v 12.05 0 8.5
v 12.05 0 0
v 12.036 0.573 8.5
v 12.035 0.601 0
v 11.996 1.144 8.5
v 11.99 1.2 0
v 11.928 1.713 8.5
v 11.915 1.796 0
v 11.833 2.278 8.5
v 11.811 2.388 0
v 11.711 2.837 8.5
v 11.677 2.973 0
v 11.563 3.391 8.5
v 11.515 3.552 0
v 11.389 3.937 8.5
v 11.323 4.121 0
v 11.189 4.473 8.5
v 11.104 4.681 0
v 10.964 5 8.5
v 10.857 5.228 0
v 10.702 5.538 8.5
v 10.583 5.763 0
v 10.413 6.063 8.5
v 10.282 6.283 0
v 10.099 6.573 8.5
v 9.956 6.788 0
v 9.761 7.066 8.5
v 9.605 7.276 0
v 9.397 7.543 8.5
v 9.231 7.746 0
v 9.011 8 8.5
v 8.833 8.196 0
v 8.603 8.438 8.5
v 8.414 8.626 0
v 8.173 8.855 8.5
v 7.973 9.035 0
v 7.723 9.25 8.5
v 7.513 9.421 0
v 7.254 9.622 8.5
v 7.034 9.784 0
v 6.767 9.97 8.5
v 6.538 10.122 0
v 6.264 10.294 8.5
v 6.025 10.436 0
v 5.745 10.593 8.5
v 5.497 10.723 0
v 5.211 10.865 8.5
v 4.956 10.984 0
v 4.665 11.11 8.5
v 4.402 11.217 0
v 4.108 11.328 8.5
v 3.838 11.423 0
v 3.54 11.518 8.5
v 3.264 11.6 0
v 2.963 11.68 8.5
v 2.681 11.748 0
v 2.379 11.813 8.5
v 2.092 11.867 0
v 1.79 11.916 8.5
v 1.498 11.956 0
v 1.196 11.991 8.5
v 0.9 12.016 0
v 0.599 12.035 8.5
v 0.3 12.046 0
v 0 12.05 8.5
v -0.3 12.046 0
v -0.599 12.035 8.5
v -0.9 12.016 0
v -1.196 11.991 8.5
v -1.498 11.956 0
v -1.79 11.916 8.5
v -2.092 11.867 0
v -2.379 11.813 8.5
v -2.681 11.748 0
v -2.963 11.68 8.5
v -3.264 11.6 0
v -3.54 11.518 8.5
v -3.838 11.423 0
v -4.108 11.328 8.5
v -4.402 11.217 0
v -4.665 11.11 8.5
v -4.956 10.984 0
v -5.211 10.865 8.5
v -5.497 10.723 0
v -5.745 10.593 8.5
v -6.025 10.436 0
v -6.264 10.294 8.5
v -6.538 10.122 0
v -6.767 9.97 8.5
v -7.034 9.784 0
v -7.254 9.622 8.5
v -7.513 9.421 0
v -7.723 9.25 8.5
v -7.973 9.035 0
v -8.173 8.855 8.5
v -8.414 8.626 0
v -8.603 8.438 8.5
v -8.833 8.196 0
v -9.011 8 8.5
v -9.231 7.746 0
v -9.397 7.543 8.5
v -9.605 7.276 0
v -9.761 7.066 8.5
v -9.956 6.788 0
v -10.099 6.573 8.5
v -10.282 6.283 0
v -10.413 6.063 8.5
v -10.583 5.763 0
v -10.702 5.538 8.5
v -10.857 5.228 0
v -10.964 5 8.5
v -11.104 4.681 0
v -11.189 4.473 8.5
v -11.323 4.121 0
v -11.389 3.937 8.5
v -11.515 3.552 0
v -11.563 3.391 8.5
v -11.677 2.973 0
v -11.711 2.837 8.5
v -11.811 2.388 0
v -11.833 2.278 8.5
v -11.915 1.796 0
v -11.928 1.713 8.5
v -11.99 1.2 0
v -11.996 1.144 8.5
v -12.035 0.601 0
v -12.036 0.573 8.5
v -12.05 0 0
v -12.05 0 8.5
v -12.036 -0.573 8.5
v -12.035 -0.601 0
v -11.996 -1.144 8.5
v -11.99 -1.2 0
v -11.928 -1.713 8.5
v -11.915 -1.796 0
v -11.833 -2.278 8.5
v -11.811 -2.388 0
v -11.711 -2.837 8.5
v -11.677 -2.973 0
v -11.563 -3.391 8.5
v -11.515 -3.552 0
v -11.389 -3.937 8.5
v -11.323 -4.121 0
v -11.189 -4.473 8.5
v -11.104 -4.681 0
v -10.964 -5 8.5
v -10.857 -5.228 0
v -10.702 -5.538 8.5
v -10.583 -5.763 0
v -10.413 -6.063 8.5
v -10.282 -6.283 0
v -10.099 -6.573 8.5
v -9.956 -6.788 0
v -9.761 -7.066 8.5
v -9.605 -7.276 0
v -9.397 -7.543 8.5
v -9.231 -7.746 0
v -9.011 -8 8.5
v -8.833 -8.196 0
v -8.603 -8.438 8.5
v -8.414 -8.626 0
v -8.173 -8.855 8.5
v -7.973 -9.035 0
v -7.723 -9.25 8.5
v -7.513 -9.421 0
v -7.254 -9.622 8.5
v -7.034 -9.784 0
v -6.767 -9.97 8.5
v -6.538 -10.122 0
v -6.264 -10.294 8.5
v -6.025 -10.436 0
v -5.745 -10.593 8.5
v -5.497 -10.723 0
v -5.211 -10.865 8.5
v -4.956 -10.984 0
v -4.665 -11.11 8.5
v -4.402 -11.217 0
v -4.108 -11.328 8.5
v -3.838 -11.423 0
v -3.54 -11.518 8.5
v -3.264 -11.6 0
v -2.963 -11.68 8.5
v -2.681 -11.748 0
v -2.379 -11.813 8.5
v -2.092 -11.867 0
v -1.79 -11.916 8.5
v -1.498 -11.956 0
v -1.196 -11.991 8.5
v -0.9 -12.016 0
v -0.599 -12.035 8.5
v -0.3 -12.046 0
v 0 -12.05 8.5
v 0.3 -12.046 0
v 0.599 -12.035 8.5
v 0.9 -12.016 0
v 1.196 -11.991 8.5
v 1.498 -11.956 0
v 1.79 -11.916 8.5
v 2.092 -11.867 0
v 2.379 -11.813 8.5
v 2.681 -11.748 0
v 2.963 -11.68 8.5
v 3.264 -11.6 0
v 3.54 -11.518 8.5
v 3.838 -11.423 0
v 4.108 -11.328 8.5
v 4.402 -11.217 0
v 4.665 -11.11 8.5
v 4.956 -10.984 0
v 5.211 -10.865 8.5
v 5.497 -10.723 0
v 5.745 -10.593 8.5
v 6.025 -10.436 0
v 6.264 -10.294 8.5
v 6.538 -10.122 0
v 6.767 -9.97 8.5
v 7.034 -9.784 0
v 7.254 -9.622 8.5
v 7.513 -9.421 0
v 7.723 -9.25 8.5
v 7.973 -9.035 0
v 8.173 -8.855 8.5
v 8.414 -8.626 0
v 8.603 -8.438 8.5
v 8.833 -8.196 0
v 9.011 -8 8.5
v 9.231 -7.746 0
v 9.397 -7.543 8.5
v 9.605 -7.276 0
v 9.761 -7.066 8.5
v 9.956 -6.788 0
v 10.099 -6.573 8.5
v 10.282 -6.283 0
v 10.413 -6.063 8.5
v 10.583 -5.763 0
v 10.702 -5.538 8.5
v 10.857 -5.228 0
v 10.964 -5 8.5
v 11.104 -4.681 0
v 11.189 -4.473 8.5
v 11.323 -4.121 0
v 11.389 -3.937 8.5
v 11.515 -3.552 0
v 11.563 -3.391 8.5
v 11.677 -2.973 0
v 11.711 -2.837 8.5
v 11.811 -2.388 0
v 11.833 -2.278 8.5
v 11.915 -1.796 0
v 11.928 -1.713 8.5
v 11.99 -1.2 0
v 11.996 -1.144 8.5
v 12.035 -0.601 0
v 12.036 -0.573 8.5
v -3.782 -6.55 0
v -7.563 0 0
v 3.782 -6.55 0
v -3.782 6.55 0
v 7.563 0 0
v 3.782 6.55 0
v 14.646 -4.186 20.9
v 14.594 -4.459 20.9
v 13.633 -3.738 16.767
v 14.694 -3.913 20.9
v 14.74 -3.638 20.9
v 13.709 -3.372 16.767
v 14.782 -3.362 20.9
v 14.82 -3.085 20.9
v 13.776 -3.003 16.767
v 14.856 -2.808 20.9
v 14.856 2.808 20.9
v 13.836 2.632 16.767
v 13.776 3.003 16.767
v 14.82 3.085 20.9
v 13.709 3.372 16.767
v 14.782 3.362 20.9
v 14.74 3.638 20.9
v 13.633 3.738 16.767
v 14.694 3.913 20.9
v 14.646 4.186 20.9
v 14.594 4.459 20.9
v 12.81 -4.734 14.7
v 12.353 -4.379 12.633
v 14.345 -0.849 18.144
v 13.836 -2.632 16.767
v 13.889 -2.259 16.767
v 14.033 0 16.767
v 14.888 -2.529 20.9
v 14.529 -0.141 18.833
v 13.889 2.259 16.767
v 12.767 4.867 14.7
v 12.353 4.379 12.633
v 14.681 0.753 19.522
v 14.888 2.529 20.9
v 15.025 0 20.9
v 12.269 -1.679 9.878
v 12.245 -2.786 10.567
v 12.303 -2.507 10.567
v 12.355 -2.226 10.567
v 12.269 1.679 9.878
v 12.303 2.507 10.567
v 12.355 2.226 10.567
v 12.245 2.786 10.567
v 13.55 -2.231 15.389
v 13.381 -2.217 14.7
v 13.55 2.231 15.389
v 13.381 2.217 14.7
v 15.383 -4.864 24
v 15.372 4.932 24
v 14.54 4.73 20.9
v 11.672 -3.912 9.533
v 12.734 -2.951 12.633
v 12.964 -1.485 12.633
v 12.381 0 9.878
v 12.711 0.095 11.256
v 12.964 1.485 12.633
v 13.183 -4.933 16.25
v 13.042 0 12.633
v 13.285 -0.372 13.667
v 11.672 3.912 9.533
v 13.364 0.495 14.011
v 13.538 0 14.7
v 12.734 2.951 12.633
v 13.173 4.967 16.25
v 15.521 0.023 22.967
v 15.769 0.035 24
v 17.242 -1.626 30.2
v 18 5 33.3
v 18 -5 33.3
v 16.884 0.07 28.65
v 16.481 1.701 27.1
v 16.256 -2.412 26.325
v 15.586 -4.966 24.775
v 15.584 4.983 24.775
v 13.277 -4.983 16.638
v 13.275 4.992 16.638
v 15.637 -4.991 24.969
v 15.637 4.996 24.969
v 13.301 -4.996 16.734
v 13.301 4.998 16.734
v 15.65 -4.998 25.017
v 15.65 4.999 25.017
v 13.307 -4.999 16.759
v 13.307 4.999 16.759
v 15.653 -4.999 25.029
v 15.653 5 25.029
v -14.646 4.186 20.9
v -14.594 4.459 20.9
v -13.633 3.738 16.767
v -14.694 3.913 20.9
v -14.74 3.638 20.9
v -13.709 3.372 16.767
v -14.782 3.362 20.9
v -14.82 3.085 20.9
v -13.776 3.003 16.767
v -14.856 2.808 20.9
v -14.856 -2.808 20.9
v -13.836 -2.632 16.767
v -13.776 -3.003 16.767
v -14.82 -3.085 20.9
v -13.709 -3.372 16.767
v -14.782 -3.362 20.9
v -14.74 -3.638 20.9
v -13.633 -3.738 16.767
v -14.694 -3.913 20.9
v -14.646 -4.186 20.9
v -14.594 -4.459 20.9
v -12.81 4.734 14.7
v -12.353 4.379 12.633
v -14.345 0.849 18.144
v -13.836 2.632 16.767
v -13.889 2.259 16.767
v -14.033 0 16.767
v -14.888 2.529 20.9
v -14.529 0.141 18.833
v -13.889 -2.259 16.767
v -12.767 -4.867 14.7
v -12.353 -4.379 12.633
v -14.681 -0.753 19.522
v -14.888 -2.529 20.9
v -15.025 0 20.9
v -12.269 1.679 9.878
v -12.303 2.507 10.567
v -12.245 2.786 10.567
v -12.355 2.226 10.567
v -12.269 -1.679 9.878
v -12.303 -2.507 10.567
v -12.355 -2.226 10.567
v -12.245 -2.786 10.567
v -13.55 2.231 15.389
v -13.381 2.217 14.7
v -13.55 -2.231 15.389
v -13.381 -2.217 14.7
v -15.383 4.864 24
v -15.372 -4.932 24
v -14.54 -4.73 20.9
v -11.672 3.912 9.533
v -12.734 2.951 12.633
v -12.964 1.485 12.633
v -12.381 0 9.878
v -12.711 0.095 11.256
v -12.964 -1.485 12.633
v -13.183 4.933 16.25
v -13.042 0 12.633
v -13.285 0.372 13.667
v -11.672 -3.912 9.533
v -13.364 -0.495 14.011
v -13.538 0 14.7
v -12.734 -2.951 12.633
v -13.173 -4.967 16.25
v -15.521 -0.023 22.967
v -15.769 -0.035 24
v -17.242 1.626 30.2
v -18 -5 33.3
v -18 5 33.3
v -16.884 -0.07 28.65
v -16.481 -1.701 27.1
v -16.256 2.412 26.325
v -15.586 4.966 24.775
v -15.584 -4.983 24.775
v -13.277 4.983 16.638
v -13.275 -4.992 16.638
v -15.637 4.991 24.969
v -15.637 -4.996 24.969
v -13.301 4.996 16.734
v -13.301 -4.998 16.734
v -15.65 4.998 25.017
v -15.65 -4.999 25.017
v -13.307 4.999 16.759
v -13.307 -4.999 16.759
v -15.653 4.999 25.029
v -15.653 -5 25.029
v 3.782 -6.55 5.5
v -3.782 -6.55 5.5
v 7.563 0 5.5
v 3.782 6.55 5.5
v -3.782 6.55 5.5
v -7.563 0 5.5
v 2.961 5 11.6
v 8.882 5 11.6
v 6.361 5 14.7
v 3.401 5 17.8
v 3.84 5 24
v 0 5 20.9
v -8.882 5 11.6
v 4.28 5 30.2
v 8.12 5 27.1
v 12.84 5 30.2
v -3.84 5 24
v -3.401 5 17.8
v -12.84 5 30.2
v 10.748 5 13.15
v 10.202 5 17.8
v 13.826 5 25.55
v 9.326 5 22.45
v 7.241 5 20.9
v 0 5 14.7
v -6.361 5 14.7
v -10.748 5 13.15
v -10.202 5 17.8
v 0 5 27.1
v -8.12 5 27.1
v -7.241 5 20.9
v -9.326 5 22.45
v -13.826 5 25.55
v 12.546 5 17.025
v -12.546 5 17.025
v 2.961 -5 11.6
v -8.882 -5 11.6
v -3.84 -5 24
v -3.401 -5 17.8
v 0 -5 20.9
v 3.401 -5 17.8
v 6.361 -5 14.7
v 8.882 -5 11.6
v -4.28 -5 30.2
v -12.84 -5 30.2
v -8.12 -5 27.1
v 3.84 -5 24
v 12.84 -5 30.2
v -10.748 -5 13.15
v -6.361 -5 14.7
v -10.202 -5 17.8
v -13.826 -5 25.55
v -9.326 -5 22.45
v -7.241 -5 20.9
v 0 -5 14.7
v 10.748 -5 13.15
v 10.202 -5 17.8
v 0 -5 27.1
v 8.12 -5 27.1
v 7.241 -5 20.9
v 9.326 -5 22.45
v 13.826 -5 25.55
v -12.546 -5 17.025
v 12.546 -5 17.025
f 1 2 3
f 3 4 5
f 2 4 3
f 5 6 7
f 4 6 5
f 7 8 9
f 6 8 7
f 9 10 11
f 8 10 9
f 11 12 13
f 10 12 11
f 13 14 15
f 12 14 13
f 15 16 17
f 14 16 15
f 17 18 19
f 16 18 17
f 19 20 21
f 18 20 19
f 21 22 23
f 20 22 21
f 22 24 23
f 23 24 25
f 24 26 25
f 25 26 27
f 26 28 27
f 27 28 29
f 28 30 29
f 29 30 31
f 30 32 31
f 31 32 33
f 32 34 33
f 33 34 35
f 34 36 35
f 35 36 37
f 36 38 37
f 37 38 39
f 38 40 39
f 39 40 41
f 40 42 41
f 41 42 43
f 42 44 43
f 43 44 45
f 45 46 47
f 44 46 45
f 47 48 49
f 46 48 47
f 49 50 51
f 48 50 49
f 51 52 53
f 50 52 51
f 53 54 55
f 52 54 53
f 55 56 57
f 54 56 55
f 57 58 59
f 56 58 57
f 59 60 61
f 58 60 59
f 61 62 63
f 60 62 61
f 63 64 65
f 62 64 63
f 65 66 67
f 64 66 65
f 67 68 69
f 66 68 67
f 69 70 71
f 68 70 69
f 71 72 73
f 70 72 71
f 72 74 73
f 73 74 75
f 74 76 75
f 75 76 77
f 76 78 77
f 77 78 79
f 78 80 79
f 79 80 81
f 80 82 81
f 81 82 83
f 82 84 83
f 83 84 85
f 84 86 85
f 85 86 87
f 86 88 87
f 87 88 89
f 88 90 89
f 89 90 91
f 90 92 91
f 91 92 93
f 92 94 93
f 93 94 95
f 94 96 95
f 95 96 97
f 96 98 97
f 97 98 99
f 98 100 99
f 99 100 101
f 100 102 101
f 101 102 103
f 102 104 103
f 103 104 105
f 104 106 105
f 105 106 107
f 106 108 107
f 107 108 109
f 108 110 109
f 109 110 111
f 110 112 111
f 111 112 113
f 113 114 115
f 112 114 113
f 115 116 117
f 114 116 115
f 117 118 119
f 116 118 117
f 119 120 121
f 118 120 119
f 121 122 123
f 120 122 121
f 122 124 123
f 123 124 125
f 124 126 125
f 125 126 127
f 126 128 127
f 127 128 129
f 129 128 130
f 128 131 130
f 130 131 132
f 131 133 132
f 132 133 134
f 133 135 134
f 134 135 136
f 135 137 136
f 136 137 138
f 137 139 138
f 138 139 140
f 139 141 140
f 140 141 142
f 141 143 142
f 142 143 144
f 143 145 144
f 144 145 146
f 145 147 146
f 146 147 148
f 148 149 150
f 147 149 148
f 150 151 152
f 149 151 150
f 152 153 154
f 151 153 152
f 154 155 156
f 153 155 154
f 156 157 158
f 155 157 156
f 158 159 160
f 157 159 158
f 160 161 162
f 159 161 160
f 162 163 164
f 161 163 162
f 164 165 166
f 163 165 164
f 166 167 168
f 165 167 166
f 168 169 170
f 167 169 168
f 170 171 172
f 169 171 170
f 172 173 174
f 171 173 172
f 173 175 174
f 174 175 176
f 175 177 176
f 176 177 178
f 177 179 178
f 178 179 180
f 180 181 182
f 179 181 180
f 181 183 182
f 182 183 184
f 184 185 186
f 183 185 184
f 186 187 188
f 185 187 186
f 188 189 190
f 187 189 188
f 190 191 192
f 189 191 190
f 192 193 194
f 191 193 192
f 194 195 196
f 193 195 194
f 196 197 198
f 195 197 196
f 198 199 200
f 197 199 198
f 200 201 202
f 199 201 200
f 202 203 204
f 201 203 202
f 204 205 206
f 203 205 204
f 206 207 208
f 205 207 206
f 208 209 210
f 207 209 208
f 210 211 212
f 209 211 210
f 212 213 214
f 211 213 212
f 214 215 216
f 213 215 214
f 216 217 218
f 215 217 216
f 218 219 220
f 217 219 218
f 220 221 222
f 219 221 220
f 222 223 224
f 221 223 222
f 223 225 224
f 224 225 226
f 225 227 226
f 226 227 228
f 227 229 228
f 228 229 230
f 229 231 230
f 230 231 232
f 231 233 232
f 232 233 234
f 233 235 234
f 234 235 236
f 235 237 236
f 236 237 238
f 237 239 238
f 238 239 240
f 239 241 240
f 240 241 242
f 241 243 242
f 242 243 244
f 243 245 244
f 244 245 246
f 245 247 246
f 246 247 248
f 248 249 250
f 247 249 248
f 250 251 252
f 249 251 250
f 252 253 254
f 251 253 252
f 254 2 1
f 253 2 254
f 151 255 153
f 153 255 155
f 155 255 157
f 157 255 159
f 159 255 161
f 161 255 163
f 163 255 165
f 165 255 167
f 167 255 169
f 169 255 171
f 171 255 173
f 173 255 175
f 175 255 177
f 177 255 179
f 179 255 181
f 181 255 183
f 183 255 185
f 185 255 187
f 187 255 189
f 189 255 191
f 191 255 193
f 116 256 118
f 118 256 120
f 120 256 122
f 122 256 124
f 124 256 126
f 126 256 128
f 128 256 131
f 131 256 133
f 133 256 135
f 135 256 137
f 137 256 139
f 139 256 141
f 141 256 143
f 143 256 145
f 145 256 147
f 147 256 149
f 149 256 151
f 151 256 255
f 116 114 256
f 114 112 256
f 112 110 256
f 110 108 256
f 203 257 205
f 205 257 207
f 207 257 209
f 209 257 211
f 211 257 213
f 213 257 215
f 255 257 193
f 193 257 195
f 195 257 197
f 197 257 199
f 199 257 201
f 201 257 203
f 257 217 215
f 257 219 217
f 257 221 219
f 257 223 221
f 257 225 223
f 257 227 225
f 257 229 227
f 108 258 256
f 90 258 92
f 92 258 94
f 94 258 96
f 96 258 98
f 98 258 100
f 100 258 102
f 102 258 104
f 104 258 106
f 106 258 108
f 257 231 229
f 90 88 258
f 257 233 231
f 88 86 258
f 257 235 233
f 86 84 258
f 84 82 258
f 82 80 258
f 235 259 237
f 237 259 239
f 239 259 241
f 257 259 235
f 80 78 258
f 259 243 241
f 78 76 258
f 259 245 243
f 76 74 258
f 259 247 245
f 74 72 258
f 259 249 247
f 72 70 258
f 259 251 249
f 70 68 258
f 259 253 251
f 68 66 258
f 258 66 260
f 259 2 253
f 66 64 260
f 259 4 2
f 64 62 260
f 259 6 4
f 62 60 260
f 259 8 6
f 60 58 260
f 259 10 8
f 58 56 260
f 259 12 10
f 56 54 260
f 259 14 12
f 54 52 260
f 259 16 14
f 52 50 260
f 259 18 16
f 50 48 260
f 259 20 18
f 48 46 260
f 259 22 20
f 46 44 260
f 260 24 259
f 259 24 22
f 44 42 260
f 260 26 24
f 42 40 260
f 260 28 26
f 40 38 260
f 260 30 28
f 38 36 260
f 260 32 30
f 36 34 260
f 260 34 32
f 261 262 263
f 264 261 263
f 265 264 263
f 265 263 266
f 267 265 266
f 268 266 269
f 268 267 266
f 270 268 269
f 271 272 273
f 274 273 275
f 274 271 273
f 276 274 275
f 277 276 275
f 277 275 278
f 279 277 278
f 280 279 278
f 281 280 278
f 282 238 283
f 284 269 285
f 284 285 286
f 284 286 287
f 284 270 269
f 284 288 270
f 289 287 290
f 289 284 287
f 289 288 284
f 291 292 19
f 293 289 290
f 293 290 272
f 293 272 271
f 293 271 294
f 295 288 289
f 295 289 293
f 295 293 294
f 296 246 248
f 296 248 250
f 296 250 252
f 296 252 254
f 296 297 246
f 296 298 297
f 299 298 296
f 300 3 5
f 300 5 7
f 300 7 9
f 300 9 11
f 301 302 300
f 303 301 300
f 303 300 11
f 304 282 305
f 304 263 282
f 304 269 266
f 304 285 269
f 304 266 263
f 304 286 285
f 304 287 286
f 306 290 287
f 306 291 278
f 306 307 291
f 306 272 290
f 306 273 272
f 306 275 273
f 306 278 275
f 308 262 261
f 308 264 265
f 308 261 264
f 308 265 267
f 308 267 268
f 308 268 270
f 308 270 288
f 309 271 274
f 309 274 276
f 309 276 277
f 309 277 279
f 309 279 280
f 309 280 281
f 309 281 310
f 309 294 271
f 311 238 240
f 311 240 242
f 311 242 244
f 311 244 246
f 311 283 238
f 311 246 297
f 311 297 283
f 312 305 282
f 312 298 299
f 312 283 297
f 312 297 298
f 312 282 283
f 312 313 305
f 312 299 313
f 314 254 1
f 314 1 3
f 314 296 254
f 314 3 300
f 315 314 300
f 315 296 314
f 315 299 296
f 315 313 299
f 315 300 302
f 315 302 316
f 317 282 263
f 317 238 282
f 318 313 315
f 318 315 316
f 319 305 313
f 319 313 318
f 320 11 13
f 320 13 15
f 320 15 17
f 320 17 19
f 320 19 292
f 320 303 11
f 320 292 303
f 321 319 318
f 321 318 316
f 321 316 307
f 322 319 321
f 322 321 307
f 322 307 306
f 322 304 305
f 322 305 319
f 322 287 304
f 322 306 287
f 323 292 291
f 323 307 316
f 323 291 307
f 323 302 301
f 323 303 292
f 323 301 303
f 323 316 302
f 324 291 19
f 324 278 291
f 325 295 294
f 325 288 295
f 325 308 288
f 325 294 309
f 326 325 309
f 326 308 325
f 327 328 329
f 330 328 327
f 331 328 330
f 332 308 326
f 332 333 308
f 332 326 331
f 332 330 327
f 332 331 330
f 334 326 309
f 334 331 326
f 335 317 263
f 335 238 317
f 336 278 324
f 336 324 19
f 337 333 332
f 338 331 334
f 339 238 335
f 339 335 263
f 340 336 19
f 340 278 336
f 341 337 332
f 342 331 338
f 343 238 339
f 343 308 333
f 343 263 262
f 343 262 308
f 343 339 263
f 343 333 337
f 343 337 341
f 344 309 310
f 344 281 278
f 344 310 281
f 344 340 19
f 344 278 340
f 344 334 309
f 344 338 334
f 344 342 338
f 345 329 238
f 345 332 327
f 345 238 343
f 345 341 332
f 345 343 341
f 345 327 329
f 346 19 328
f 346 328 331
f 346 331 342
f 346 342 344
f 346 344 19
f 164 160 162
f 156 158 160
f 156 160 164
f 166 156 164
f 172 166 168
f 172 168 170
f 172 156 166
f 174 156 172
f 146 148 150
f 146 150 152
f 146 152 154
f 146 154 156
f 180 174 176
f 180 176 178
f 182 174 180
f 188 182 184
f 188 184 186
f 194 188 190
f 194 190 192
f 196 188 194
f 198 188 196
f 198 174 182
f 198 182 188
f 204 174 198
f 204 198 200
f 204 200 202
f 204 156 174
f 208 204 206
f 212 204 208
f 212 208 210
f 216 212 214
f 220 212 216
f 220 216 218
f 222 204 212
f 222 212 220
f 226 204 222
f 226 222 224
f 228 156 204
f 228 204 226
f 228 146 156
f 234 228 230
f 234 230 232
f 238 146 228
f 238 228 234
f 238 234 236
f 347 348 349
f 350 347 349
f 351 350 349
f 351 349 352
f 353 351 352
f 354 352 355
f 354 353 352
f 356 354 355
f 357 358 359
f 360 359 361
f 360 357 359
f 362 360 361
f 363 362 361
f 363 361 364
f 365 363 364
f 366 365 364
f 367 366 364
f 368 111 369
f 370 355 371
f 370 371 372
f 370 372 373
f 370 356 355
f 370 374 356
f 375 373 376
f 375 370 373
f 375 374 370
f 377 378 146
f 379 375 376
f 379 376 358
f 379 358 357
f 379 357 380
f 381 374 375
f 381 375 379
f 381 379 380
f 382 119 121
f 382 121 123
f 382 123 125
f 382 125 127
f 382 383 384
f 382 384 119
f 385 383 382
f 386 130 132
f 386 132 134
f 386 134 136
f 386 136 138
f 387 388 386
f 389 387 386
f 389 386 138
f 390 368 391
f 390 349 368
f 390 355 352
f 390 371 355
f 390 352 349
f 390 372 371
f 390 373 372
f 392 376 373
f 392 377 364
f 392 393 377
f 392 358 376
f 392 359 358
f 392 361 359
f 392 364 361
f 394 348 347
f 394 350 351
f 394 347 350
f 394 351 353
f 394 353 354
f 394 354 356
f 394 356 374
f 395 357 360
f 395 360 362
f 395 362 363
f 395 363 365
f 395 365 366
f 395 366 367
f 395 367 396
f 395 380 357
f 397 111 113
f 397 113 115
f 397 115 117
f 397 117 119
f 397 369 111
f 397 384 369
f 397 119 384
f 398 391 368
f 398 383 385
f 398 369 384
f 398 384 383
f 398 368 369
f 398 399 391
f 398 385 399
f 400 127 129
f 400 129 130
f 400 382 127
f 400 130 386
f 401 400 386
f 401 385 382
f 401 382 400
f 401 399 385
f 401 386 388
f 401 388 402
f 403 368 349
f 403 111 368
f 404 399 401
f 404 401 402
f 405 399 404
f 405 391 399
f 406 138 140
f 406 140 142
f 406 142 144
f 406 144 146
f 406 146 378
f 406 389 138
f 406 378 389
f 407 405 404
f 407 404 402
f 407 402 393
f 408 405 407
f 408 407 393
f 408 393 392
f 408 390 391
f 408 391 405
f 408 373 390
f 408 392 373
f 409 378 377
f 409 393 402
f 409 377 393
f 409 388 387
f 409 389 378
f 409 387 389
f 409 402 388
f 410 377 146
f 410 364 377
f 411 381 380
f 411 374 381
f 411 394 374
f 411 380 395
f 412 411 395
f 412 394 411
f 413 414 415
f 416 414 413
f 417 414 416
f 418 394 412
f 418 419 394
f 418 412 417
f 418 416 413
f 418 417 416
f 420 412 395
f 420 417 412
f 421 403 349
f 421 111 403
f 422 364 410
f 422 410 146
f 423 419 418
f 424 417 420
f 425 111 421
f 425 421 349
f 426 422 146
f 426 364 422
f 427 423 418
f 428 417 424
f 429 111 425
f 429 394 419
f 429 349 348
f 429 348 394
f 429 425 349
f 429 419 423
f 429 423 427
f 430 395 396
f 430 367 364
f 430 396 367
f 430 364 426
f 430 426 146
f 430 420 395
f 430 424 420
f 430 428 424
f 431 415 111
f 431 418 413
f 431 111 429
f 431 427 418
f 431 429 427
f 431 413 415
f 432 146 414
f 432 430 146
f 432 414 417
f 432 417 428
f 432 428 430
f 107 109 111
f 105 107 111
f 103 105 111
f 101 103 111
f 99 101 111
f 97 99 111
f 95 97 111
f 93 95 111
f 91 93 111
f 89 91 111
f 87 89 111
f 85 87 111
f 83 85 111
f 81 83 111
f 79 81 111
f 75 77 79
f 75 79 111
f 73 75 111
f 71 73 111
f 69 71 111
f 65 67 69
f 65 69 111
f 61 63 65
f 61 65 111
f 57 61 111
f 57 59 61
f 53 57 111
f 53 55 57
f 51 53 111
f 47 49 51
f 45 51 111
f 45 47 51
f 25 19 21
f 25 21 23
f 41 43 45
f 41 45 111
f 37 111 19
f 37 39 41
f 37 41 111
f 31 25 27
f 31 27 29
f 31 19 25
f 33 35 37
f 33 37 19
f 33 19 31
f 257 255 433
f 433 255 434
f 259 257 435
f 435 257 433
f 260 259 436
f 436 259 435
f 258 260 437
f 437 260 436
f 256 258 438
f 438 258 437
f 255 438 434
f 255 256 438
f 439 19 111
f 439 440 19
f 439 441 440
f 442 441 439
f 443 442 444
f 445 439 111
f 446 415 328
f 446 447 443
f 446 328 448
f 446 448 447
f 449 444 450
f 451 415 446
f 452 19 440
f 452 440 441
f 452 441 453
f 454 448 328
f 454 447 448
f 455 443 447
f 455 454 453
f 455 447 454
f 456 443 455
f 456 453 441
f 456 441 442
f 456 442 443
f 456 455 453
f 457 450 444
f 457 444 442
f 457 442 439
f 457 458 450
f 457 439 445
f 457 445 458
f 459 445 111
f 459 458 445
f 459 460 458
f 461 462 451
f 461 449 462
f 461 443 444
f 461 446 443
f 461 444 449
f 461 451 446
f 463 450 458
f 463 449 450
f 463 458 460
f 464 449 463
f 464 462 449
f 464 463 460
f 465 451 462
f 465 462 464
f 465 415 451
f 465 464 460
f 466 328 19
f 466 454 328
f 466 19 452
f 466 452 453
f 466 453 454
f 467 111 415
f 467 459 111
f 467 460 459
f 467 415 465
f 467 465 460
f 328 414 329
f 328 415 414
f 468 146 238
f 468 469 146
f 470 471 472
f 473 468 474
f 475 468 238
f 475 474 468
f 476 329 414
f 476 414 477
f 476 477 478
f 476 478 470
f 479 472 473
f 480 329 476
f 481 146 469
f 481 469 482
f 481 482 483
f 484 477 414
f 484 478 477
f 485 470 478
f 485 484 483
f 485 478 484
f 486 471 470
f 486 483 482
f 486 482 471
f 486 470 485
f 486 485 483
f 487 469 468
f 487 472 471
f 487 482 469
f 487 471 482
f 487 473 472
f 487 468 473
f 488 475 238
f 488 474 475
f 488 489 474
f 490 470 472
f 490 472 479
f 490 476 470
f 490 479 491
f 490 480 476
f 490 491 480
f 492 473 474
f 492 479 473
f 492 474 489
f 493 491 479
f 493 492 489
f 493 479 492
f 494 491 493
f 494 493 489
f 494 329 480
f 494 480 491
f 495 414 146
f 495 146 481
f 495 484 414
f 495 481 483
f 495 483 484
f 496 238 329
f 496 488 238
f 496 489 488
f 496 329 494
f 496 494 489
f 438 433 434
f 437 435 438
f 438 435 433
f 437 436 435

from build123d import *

# Parameters (mm, degrees)
SKETCH_R     = 12.05
PAD_DEPTH    = 8.5
SKETCH003_W  = 36
SKETCH003_H  = 10
POCKET_DEPTH = 5.5


with BuildPart() as part:
    # Sketch → Pad (new body)
    with BuildSketch(Plane.XY):
        Circle(SKETCH_R)
    extrude(amount=PAD_DEPTH)

    # Sketch002 (on Face3 of Pad) → AdditiveLoft section 0
    with BuildSketch(Plane.XY.offset(8.5)):
        with BuildLine():
            ThreePointArc((-10.96369, 5), (-12.05, 0), (-10.96369, -5))
            Line((10.96369, -5), (-10.96369, -5))
            ThreePointArc((10.96369, -5), (12.05, 0), (10.96369, 5))
            Line((-10.96369, 5), (10.96369, 5))
        make_face()
    # Sketch003 → AdditiveLoft section 1
    with BuildSketch(Plane.XY.offset(33.3)):
        Rectangle(SKETCH003_W, SKETCH003_H)
    loft()

    # Sketch004 (on Face2 of AdditiveLoft) → Pocket (cut)
    with BuildSketch(Plane(origin=(0, 0, 0), x_dir=(1, 0, 0), z_dir=(0, 0, -1))):
        Polygon((-3.781644, 6.55), (-7.563289, 0), (-3.781644, -6.55), (3.781644, -6.55), (7.563289, 0), (3.781644, 6.55), align=None)
    extrude(amount=-POCKET_DEPTH, mode=Mode.SUBTRACT)


solid = part.part
